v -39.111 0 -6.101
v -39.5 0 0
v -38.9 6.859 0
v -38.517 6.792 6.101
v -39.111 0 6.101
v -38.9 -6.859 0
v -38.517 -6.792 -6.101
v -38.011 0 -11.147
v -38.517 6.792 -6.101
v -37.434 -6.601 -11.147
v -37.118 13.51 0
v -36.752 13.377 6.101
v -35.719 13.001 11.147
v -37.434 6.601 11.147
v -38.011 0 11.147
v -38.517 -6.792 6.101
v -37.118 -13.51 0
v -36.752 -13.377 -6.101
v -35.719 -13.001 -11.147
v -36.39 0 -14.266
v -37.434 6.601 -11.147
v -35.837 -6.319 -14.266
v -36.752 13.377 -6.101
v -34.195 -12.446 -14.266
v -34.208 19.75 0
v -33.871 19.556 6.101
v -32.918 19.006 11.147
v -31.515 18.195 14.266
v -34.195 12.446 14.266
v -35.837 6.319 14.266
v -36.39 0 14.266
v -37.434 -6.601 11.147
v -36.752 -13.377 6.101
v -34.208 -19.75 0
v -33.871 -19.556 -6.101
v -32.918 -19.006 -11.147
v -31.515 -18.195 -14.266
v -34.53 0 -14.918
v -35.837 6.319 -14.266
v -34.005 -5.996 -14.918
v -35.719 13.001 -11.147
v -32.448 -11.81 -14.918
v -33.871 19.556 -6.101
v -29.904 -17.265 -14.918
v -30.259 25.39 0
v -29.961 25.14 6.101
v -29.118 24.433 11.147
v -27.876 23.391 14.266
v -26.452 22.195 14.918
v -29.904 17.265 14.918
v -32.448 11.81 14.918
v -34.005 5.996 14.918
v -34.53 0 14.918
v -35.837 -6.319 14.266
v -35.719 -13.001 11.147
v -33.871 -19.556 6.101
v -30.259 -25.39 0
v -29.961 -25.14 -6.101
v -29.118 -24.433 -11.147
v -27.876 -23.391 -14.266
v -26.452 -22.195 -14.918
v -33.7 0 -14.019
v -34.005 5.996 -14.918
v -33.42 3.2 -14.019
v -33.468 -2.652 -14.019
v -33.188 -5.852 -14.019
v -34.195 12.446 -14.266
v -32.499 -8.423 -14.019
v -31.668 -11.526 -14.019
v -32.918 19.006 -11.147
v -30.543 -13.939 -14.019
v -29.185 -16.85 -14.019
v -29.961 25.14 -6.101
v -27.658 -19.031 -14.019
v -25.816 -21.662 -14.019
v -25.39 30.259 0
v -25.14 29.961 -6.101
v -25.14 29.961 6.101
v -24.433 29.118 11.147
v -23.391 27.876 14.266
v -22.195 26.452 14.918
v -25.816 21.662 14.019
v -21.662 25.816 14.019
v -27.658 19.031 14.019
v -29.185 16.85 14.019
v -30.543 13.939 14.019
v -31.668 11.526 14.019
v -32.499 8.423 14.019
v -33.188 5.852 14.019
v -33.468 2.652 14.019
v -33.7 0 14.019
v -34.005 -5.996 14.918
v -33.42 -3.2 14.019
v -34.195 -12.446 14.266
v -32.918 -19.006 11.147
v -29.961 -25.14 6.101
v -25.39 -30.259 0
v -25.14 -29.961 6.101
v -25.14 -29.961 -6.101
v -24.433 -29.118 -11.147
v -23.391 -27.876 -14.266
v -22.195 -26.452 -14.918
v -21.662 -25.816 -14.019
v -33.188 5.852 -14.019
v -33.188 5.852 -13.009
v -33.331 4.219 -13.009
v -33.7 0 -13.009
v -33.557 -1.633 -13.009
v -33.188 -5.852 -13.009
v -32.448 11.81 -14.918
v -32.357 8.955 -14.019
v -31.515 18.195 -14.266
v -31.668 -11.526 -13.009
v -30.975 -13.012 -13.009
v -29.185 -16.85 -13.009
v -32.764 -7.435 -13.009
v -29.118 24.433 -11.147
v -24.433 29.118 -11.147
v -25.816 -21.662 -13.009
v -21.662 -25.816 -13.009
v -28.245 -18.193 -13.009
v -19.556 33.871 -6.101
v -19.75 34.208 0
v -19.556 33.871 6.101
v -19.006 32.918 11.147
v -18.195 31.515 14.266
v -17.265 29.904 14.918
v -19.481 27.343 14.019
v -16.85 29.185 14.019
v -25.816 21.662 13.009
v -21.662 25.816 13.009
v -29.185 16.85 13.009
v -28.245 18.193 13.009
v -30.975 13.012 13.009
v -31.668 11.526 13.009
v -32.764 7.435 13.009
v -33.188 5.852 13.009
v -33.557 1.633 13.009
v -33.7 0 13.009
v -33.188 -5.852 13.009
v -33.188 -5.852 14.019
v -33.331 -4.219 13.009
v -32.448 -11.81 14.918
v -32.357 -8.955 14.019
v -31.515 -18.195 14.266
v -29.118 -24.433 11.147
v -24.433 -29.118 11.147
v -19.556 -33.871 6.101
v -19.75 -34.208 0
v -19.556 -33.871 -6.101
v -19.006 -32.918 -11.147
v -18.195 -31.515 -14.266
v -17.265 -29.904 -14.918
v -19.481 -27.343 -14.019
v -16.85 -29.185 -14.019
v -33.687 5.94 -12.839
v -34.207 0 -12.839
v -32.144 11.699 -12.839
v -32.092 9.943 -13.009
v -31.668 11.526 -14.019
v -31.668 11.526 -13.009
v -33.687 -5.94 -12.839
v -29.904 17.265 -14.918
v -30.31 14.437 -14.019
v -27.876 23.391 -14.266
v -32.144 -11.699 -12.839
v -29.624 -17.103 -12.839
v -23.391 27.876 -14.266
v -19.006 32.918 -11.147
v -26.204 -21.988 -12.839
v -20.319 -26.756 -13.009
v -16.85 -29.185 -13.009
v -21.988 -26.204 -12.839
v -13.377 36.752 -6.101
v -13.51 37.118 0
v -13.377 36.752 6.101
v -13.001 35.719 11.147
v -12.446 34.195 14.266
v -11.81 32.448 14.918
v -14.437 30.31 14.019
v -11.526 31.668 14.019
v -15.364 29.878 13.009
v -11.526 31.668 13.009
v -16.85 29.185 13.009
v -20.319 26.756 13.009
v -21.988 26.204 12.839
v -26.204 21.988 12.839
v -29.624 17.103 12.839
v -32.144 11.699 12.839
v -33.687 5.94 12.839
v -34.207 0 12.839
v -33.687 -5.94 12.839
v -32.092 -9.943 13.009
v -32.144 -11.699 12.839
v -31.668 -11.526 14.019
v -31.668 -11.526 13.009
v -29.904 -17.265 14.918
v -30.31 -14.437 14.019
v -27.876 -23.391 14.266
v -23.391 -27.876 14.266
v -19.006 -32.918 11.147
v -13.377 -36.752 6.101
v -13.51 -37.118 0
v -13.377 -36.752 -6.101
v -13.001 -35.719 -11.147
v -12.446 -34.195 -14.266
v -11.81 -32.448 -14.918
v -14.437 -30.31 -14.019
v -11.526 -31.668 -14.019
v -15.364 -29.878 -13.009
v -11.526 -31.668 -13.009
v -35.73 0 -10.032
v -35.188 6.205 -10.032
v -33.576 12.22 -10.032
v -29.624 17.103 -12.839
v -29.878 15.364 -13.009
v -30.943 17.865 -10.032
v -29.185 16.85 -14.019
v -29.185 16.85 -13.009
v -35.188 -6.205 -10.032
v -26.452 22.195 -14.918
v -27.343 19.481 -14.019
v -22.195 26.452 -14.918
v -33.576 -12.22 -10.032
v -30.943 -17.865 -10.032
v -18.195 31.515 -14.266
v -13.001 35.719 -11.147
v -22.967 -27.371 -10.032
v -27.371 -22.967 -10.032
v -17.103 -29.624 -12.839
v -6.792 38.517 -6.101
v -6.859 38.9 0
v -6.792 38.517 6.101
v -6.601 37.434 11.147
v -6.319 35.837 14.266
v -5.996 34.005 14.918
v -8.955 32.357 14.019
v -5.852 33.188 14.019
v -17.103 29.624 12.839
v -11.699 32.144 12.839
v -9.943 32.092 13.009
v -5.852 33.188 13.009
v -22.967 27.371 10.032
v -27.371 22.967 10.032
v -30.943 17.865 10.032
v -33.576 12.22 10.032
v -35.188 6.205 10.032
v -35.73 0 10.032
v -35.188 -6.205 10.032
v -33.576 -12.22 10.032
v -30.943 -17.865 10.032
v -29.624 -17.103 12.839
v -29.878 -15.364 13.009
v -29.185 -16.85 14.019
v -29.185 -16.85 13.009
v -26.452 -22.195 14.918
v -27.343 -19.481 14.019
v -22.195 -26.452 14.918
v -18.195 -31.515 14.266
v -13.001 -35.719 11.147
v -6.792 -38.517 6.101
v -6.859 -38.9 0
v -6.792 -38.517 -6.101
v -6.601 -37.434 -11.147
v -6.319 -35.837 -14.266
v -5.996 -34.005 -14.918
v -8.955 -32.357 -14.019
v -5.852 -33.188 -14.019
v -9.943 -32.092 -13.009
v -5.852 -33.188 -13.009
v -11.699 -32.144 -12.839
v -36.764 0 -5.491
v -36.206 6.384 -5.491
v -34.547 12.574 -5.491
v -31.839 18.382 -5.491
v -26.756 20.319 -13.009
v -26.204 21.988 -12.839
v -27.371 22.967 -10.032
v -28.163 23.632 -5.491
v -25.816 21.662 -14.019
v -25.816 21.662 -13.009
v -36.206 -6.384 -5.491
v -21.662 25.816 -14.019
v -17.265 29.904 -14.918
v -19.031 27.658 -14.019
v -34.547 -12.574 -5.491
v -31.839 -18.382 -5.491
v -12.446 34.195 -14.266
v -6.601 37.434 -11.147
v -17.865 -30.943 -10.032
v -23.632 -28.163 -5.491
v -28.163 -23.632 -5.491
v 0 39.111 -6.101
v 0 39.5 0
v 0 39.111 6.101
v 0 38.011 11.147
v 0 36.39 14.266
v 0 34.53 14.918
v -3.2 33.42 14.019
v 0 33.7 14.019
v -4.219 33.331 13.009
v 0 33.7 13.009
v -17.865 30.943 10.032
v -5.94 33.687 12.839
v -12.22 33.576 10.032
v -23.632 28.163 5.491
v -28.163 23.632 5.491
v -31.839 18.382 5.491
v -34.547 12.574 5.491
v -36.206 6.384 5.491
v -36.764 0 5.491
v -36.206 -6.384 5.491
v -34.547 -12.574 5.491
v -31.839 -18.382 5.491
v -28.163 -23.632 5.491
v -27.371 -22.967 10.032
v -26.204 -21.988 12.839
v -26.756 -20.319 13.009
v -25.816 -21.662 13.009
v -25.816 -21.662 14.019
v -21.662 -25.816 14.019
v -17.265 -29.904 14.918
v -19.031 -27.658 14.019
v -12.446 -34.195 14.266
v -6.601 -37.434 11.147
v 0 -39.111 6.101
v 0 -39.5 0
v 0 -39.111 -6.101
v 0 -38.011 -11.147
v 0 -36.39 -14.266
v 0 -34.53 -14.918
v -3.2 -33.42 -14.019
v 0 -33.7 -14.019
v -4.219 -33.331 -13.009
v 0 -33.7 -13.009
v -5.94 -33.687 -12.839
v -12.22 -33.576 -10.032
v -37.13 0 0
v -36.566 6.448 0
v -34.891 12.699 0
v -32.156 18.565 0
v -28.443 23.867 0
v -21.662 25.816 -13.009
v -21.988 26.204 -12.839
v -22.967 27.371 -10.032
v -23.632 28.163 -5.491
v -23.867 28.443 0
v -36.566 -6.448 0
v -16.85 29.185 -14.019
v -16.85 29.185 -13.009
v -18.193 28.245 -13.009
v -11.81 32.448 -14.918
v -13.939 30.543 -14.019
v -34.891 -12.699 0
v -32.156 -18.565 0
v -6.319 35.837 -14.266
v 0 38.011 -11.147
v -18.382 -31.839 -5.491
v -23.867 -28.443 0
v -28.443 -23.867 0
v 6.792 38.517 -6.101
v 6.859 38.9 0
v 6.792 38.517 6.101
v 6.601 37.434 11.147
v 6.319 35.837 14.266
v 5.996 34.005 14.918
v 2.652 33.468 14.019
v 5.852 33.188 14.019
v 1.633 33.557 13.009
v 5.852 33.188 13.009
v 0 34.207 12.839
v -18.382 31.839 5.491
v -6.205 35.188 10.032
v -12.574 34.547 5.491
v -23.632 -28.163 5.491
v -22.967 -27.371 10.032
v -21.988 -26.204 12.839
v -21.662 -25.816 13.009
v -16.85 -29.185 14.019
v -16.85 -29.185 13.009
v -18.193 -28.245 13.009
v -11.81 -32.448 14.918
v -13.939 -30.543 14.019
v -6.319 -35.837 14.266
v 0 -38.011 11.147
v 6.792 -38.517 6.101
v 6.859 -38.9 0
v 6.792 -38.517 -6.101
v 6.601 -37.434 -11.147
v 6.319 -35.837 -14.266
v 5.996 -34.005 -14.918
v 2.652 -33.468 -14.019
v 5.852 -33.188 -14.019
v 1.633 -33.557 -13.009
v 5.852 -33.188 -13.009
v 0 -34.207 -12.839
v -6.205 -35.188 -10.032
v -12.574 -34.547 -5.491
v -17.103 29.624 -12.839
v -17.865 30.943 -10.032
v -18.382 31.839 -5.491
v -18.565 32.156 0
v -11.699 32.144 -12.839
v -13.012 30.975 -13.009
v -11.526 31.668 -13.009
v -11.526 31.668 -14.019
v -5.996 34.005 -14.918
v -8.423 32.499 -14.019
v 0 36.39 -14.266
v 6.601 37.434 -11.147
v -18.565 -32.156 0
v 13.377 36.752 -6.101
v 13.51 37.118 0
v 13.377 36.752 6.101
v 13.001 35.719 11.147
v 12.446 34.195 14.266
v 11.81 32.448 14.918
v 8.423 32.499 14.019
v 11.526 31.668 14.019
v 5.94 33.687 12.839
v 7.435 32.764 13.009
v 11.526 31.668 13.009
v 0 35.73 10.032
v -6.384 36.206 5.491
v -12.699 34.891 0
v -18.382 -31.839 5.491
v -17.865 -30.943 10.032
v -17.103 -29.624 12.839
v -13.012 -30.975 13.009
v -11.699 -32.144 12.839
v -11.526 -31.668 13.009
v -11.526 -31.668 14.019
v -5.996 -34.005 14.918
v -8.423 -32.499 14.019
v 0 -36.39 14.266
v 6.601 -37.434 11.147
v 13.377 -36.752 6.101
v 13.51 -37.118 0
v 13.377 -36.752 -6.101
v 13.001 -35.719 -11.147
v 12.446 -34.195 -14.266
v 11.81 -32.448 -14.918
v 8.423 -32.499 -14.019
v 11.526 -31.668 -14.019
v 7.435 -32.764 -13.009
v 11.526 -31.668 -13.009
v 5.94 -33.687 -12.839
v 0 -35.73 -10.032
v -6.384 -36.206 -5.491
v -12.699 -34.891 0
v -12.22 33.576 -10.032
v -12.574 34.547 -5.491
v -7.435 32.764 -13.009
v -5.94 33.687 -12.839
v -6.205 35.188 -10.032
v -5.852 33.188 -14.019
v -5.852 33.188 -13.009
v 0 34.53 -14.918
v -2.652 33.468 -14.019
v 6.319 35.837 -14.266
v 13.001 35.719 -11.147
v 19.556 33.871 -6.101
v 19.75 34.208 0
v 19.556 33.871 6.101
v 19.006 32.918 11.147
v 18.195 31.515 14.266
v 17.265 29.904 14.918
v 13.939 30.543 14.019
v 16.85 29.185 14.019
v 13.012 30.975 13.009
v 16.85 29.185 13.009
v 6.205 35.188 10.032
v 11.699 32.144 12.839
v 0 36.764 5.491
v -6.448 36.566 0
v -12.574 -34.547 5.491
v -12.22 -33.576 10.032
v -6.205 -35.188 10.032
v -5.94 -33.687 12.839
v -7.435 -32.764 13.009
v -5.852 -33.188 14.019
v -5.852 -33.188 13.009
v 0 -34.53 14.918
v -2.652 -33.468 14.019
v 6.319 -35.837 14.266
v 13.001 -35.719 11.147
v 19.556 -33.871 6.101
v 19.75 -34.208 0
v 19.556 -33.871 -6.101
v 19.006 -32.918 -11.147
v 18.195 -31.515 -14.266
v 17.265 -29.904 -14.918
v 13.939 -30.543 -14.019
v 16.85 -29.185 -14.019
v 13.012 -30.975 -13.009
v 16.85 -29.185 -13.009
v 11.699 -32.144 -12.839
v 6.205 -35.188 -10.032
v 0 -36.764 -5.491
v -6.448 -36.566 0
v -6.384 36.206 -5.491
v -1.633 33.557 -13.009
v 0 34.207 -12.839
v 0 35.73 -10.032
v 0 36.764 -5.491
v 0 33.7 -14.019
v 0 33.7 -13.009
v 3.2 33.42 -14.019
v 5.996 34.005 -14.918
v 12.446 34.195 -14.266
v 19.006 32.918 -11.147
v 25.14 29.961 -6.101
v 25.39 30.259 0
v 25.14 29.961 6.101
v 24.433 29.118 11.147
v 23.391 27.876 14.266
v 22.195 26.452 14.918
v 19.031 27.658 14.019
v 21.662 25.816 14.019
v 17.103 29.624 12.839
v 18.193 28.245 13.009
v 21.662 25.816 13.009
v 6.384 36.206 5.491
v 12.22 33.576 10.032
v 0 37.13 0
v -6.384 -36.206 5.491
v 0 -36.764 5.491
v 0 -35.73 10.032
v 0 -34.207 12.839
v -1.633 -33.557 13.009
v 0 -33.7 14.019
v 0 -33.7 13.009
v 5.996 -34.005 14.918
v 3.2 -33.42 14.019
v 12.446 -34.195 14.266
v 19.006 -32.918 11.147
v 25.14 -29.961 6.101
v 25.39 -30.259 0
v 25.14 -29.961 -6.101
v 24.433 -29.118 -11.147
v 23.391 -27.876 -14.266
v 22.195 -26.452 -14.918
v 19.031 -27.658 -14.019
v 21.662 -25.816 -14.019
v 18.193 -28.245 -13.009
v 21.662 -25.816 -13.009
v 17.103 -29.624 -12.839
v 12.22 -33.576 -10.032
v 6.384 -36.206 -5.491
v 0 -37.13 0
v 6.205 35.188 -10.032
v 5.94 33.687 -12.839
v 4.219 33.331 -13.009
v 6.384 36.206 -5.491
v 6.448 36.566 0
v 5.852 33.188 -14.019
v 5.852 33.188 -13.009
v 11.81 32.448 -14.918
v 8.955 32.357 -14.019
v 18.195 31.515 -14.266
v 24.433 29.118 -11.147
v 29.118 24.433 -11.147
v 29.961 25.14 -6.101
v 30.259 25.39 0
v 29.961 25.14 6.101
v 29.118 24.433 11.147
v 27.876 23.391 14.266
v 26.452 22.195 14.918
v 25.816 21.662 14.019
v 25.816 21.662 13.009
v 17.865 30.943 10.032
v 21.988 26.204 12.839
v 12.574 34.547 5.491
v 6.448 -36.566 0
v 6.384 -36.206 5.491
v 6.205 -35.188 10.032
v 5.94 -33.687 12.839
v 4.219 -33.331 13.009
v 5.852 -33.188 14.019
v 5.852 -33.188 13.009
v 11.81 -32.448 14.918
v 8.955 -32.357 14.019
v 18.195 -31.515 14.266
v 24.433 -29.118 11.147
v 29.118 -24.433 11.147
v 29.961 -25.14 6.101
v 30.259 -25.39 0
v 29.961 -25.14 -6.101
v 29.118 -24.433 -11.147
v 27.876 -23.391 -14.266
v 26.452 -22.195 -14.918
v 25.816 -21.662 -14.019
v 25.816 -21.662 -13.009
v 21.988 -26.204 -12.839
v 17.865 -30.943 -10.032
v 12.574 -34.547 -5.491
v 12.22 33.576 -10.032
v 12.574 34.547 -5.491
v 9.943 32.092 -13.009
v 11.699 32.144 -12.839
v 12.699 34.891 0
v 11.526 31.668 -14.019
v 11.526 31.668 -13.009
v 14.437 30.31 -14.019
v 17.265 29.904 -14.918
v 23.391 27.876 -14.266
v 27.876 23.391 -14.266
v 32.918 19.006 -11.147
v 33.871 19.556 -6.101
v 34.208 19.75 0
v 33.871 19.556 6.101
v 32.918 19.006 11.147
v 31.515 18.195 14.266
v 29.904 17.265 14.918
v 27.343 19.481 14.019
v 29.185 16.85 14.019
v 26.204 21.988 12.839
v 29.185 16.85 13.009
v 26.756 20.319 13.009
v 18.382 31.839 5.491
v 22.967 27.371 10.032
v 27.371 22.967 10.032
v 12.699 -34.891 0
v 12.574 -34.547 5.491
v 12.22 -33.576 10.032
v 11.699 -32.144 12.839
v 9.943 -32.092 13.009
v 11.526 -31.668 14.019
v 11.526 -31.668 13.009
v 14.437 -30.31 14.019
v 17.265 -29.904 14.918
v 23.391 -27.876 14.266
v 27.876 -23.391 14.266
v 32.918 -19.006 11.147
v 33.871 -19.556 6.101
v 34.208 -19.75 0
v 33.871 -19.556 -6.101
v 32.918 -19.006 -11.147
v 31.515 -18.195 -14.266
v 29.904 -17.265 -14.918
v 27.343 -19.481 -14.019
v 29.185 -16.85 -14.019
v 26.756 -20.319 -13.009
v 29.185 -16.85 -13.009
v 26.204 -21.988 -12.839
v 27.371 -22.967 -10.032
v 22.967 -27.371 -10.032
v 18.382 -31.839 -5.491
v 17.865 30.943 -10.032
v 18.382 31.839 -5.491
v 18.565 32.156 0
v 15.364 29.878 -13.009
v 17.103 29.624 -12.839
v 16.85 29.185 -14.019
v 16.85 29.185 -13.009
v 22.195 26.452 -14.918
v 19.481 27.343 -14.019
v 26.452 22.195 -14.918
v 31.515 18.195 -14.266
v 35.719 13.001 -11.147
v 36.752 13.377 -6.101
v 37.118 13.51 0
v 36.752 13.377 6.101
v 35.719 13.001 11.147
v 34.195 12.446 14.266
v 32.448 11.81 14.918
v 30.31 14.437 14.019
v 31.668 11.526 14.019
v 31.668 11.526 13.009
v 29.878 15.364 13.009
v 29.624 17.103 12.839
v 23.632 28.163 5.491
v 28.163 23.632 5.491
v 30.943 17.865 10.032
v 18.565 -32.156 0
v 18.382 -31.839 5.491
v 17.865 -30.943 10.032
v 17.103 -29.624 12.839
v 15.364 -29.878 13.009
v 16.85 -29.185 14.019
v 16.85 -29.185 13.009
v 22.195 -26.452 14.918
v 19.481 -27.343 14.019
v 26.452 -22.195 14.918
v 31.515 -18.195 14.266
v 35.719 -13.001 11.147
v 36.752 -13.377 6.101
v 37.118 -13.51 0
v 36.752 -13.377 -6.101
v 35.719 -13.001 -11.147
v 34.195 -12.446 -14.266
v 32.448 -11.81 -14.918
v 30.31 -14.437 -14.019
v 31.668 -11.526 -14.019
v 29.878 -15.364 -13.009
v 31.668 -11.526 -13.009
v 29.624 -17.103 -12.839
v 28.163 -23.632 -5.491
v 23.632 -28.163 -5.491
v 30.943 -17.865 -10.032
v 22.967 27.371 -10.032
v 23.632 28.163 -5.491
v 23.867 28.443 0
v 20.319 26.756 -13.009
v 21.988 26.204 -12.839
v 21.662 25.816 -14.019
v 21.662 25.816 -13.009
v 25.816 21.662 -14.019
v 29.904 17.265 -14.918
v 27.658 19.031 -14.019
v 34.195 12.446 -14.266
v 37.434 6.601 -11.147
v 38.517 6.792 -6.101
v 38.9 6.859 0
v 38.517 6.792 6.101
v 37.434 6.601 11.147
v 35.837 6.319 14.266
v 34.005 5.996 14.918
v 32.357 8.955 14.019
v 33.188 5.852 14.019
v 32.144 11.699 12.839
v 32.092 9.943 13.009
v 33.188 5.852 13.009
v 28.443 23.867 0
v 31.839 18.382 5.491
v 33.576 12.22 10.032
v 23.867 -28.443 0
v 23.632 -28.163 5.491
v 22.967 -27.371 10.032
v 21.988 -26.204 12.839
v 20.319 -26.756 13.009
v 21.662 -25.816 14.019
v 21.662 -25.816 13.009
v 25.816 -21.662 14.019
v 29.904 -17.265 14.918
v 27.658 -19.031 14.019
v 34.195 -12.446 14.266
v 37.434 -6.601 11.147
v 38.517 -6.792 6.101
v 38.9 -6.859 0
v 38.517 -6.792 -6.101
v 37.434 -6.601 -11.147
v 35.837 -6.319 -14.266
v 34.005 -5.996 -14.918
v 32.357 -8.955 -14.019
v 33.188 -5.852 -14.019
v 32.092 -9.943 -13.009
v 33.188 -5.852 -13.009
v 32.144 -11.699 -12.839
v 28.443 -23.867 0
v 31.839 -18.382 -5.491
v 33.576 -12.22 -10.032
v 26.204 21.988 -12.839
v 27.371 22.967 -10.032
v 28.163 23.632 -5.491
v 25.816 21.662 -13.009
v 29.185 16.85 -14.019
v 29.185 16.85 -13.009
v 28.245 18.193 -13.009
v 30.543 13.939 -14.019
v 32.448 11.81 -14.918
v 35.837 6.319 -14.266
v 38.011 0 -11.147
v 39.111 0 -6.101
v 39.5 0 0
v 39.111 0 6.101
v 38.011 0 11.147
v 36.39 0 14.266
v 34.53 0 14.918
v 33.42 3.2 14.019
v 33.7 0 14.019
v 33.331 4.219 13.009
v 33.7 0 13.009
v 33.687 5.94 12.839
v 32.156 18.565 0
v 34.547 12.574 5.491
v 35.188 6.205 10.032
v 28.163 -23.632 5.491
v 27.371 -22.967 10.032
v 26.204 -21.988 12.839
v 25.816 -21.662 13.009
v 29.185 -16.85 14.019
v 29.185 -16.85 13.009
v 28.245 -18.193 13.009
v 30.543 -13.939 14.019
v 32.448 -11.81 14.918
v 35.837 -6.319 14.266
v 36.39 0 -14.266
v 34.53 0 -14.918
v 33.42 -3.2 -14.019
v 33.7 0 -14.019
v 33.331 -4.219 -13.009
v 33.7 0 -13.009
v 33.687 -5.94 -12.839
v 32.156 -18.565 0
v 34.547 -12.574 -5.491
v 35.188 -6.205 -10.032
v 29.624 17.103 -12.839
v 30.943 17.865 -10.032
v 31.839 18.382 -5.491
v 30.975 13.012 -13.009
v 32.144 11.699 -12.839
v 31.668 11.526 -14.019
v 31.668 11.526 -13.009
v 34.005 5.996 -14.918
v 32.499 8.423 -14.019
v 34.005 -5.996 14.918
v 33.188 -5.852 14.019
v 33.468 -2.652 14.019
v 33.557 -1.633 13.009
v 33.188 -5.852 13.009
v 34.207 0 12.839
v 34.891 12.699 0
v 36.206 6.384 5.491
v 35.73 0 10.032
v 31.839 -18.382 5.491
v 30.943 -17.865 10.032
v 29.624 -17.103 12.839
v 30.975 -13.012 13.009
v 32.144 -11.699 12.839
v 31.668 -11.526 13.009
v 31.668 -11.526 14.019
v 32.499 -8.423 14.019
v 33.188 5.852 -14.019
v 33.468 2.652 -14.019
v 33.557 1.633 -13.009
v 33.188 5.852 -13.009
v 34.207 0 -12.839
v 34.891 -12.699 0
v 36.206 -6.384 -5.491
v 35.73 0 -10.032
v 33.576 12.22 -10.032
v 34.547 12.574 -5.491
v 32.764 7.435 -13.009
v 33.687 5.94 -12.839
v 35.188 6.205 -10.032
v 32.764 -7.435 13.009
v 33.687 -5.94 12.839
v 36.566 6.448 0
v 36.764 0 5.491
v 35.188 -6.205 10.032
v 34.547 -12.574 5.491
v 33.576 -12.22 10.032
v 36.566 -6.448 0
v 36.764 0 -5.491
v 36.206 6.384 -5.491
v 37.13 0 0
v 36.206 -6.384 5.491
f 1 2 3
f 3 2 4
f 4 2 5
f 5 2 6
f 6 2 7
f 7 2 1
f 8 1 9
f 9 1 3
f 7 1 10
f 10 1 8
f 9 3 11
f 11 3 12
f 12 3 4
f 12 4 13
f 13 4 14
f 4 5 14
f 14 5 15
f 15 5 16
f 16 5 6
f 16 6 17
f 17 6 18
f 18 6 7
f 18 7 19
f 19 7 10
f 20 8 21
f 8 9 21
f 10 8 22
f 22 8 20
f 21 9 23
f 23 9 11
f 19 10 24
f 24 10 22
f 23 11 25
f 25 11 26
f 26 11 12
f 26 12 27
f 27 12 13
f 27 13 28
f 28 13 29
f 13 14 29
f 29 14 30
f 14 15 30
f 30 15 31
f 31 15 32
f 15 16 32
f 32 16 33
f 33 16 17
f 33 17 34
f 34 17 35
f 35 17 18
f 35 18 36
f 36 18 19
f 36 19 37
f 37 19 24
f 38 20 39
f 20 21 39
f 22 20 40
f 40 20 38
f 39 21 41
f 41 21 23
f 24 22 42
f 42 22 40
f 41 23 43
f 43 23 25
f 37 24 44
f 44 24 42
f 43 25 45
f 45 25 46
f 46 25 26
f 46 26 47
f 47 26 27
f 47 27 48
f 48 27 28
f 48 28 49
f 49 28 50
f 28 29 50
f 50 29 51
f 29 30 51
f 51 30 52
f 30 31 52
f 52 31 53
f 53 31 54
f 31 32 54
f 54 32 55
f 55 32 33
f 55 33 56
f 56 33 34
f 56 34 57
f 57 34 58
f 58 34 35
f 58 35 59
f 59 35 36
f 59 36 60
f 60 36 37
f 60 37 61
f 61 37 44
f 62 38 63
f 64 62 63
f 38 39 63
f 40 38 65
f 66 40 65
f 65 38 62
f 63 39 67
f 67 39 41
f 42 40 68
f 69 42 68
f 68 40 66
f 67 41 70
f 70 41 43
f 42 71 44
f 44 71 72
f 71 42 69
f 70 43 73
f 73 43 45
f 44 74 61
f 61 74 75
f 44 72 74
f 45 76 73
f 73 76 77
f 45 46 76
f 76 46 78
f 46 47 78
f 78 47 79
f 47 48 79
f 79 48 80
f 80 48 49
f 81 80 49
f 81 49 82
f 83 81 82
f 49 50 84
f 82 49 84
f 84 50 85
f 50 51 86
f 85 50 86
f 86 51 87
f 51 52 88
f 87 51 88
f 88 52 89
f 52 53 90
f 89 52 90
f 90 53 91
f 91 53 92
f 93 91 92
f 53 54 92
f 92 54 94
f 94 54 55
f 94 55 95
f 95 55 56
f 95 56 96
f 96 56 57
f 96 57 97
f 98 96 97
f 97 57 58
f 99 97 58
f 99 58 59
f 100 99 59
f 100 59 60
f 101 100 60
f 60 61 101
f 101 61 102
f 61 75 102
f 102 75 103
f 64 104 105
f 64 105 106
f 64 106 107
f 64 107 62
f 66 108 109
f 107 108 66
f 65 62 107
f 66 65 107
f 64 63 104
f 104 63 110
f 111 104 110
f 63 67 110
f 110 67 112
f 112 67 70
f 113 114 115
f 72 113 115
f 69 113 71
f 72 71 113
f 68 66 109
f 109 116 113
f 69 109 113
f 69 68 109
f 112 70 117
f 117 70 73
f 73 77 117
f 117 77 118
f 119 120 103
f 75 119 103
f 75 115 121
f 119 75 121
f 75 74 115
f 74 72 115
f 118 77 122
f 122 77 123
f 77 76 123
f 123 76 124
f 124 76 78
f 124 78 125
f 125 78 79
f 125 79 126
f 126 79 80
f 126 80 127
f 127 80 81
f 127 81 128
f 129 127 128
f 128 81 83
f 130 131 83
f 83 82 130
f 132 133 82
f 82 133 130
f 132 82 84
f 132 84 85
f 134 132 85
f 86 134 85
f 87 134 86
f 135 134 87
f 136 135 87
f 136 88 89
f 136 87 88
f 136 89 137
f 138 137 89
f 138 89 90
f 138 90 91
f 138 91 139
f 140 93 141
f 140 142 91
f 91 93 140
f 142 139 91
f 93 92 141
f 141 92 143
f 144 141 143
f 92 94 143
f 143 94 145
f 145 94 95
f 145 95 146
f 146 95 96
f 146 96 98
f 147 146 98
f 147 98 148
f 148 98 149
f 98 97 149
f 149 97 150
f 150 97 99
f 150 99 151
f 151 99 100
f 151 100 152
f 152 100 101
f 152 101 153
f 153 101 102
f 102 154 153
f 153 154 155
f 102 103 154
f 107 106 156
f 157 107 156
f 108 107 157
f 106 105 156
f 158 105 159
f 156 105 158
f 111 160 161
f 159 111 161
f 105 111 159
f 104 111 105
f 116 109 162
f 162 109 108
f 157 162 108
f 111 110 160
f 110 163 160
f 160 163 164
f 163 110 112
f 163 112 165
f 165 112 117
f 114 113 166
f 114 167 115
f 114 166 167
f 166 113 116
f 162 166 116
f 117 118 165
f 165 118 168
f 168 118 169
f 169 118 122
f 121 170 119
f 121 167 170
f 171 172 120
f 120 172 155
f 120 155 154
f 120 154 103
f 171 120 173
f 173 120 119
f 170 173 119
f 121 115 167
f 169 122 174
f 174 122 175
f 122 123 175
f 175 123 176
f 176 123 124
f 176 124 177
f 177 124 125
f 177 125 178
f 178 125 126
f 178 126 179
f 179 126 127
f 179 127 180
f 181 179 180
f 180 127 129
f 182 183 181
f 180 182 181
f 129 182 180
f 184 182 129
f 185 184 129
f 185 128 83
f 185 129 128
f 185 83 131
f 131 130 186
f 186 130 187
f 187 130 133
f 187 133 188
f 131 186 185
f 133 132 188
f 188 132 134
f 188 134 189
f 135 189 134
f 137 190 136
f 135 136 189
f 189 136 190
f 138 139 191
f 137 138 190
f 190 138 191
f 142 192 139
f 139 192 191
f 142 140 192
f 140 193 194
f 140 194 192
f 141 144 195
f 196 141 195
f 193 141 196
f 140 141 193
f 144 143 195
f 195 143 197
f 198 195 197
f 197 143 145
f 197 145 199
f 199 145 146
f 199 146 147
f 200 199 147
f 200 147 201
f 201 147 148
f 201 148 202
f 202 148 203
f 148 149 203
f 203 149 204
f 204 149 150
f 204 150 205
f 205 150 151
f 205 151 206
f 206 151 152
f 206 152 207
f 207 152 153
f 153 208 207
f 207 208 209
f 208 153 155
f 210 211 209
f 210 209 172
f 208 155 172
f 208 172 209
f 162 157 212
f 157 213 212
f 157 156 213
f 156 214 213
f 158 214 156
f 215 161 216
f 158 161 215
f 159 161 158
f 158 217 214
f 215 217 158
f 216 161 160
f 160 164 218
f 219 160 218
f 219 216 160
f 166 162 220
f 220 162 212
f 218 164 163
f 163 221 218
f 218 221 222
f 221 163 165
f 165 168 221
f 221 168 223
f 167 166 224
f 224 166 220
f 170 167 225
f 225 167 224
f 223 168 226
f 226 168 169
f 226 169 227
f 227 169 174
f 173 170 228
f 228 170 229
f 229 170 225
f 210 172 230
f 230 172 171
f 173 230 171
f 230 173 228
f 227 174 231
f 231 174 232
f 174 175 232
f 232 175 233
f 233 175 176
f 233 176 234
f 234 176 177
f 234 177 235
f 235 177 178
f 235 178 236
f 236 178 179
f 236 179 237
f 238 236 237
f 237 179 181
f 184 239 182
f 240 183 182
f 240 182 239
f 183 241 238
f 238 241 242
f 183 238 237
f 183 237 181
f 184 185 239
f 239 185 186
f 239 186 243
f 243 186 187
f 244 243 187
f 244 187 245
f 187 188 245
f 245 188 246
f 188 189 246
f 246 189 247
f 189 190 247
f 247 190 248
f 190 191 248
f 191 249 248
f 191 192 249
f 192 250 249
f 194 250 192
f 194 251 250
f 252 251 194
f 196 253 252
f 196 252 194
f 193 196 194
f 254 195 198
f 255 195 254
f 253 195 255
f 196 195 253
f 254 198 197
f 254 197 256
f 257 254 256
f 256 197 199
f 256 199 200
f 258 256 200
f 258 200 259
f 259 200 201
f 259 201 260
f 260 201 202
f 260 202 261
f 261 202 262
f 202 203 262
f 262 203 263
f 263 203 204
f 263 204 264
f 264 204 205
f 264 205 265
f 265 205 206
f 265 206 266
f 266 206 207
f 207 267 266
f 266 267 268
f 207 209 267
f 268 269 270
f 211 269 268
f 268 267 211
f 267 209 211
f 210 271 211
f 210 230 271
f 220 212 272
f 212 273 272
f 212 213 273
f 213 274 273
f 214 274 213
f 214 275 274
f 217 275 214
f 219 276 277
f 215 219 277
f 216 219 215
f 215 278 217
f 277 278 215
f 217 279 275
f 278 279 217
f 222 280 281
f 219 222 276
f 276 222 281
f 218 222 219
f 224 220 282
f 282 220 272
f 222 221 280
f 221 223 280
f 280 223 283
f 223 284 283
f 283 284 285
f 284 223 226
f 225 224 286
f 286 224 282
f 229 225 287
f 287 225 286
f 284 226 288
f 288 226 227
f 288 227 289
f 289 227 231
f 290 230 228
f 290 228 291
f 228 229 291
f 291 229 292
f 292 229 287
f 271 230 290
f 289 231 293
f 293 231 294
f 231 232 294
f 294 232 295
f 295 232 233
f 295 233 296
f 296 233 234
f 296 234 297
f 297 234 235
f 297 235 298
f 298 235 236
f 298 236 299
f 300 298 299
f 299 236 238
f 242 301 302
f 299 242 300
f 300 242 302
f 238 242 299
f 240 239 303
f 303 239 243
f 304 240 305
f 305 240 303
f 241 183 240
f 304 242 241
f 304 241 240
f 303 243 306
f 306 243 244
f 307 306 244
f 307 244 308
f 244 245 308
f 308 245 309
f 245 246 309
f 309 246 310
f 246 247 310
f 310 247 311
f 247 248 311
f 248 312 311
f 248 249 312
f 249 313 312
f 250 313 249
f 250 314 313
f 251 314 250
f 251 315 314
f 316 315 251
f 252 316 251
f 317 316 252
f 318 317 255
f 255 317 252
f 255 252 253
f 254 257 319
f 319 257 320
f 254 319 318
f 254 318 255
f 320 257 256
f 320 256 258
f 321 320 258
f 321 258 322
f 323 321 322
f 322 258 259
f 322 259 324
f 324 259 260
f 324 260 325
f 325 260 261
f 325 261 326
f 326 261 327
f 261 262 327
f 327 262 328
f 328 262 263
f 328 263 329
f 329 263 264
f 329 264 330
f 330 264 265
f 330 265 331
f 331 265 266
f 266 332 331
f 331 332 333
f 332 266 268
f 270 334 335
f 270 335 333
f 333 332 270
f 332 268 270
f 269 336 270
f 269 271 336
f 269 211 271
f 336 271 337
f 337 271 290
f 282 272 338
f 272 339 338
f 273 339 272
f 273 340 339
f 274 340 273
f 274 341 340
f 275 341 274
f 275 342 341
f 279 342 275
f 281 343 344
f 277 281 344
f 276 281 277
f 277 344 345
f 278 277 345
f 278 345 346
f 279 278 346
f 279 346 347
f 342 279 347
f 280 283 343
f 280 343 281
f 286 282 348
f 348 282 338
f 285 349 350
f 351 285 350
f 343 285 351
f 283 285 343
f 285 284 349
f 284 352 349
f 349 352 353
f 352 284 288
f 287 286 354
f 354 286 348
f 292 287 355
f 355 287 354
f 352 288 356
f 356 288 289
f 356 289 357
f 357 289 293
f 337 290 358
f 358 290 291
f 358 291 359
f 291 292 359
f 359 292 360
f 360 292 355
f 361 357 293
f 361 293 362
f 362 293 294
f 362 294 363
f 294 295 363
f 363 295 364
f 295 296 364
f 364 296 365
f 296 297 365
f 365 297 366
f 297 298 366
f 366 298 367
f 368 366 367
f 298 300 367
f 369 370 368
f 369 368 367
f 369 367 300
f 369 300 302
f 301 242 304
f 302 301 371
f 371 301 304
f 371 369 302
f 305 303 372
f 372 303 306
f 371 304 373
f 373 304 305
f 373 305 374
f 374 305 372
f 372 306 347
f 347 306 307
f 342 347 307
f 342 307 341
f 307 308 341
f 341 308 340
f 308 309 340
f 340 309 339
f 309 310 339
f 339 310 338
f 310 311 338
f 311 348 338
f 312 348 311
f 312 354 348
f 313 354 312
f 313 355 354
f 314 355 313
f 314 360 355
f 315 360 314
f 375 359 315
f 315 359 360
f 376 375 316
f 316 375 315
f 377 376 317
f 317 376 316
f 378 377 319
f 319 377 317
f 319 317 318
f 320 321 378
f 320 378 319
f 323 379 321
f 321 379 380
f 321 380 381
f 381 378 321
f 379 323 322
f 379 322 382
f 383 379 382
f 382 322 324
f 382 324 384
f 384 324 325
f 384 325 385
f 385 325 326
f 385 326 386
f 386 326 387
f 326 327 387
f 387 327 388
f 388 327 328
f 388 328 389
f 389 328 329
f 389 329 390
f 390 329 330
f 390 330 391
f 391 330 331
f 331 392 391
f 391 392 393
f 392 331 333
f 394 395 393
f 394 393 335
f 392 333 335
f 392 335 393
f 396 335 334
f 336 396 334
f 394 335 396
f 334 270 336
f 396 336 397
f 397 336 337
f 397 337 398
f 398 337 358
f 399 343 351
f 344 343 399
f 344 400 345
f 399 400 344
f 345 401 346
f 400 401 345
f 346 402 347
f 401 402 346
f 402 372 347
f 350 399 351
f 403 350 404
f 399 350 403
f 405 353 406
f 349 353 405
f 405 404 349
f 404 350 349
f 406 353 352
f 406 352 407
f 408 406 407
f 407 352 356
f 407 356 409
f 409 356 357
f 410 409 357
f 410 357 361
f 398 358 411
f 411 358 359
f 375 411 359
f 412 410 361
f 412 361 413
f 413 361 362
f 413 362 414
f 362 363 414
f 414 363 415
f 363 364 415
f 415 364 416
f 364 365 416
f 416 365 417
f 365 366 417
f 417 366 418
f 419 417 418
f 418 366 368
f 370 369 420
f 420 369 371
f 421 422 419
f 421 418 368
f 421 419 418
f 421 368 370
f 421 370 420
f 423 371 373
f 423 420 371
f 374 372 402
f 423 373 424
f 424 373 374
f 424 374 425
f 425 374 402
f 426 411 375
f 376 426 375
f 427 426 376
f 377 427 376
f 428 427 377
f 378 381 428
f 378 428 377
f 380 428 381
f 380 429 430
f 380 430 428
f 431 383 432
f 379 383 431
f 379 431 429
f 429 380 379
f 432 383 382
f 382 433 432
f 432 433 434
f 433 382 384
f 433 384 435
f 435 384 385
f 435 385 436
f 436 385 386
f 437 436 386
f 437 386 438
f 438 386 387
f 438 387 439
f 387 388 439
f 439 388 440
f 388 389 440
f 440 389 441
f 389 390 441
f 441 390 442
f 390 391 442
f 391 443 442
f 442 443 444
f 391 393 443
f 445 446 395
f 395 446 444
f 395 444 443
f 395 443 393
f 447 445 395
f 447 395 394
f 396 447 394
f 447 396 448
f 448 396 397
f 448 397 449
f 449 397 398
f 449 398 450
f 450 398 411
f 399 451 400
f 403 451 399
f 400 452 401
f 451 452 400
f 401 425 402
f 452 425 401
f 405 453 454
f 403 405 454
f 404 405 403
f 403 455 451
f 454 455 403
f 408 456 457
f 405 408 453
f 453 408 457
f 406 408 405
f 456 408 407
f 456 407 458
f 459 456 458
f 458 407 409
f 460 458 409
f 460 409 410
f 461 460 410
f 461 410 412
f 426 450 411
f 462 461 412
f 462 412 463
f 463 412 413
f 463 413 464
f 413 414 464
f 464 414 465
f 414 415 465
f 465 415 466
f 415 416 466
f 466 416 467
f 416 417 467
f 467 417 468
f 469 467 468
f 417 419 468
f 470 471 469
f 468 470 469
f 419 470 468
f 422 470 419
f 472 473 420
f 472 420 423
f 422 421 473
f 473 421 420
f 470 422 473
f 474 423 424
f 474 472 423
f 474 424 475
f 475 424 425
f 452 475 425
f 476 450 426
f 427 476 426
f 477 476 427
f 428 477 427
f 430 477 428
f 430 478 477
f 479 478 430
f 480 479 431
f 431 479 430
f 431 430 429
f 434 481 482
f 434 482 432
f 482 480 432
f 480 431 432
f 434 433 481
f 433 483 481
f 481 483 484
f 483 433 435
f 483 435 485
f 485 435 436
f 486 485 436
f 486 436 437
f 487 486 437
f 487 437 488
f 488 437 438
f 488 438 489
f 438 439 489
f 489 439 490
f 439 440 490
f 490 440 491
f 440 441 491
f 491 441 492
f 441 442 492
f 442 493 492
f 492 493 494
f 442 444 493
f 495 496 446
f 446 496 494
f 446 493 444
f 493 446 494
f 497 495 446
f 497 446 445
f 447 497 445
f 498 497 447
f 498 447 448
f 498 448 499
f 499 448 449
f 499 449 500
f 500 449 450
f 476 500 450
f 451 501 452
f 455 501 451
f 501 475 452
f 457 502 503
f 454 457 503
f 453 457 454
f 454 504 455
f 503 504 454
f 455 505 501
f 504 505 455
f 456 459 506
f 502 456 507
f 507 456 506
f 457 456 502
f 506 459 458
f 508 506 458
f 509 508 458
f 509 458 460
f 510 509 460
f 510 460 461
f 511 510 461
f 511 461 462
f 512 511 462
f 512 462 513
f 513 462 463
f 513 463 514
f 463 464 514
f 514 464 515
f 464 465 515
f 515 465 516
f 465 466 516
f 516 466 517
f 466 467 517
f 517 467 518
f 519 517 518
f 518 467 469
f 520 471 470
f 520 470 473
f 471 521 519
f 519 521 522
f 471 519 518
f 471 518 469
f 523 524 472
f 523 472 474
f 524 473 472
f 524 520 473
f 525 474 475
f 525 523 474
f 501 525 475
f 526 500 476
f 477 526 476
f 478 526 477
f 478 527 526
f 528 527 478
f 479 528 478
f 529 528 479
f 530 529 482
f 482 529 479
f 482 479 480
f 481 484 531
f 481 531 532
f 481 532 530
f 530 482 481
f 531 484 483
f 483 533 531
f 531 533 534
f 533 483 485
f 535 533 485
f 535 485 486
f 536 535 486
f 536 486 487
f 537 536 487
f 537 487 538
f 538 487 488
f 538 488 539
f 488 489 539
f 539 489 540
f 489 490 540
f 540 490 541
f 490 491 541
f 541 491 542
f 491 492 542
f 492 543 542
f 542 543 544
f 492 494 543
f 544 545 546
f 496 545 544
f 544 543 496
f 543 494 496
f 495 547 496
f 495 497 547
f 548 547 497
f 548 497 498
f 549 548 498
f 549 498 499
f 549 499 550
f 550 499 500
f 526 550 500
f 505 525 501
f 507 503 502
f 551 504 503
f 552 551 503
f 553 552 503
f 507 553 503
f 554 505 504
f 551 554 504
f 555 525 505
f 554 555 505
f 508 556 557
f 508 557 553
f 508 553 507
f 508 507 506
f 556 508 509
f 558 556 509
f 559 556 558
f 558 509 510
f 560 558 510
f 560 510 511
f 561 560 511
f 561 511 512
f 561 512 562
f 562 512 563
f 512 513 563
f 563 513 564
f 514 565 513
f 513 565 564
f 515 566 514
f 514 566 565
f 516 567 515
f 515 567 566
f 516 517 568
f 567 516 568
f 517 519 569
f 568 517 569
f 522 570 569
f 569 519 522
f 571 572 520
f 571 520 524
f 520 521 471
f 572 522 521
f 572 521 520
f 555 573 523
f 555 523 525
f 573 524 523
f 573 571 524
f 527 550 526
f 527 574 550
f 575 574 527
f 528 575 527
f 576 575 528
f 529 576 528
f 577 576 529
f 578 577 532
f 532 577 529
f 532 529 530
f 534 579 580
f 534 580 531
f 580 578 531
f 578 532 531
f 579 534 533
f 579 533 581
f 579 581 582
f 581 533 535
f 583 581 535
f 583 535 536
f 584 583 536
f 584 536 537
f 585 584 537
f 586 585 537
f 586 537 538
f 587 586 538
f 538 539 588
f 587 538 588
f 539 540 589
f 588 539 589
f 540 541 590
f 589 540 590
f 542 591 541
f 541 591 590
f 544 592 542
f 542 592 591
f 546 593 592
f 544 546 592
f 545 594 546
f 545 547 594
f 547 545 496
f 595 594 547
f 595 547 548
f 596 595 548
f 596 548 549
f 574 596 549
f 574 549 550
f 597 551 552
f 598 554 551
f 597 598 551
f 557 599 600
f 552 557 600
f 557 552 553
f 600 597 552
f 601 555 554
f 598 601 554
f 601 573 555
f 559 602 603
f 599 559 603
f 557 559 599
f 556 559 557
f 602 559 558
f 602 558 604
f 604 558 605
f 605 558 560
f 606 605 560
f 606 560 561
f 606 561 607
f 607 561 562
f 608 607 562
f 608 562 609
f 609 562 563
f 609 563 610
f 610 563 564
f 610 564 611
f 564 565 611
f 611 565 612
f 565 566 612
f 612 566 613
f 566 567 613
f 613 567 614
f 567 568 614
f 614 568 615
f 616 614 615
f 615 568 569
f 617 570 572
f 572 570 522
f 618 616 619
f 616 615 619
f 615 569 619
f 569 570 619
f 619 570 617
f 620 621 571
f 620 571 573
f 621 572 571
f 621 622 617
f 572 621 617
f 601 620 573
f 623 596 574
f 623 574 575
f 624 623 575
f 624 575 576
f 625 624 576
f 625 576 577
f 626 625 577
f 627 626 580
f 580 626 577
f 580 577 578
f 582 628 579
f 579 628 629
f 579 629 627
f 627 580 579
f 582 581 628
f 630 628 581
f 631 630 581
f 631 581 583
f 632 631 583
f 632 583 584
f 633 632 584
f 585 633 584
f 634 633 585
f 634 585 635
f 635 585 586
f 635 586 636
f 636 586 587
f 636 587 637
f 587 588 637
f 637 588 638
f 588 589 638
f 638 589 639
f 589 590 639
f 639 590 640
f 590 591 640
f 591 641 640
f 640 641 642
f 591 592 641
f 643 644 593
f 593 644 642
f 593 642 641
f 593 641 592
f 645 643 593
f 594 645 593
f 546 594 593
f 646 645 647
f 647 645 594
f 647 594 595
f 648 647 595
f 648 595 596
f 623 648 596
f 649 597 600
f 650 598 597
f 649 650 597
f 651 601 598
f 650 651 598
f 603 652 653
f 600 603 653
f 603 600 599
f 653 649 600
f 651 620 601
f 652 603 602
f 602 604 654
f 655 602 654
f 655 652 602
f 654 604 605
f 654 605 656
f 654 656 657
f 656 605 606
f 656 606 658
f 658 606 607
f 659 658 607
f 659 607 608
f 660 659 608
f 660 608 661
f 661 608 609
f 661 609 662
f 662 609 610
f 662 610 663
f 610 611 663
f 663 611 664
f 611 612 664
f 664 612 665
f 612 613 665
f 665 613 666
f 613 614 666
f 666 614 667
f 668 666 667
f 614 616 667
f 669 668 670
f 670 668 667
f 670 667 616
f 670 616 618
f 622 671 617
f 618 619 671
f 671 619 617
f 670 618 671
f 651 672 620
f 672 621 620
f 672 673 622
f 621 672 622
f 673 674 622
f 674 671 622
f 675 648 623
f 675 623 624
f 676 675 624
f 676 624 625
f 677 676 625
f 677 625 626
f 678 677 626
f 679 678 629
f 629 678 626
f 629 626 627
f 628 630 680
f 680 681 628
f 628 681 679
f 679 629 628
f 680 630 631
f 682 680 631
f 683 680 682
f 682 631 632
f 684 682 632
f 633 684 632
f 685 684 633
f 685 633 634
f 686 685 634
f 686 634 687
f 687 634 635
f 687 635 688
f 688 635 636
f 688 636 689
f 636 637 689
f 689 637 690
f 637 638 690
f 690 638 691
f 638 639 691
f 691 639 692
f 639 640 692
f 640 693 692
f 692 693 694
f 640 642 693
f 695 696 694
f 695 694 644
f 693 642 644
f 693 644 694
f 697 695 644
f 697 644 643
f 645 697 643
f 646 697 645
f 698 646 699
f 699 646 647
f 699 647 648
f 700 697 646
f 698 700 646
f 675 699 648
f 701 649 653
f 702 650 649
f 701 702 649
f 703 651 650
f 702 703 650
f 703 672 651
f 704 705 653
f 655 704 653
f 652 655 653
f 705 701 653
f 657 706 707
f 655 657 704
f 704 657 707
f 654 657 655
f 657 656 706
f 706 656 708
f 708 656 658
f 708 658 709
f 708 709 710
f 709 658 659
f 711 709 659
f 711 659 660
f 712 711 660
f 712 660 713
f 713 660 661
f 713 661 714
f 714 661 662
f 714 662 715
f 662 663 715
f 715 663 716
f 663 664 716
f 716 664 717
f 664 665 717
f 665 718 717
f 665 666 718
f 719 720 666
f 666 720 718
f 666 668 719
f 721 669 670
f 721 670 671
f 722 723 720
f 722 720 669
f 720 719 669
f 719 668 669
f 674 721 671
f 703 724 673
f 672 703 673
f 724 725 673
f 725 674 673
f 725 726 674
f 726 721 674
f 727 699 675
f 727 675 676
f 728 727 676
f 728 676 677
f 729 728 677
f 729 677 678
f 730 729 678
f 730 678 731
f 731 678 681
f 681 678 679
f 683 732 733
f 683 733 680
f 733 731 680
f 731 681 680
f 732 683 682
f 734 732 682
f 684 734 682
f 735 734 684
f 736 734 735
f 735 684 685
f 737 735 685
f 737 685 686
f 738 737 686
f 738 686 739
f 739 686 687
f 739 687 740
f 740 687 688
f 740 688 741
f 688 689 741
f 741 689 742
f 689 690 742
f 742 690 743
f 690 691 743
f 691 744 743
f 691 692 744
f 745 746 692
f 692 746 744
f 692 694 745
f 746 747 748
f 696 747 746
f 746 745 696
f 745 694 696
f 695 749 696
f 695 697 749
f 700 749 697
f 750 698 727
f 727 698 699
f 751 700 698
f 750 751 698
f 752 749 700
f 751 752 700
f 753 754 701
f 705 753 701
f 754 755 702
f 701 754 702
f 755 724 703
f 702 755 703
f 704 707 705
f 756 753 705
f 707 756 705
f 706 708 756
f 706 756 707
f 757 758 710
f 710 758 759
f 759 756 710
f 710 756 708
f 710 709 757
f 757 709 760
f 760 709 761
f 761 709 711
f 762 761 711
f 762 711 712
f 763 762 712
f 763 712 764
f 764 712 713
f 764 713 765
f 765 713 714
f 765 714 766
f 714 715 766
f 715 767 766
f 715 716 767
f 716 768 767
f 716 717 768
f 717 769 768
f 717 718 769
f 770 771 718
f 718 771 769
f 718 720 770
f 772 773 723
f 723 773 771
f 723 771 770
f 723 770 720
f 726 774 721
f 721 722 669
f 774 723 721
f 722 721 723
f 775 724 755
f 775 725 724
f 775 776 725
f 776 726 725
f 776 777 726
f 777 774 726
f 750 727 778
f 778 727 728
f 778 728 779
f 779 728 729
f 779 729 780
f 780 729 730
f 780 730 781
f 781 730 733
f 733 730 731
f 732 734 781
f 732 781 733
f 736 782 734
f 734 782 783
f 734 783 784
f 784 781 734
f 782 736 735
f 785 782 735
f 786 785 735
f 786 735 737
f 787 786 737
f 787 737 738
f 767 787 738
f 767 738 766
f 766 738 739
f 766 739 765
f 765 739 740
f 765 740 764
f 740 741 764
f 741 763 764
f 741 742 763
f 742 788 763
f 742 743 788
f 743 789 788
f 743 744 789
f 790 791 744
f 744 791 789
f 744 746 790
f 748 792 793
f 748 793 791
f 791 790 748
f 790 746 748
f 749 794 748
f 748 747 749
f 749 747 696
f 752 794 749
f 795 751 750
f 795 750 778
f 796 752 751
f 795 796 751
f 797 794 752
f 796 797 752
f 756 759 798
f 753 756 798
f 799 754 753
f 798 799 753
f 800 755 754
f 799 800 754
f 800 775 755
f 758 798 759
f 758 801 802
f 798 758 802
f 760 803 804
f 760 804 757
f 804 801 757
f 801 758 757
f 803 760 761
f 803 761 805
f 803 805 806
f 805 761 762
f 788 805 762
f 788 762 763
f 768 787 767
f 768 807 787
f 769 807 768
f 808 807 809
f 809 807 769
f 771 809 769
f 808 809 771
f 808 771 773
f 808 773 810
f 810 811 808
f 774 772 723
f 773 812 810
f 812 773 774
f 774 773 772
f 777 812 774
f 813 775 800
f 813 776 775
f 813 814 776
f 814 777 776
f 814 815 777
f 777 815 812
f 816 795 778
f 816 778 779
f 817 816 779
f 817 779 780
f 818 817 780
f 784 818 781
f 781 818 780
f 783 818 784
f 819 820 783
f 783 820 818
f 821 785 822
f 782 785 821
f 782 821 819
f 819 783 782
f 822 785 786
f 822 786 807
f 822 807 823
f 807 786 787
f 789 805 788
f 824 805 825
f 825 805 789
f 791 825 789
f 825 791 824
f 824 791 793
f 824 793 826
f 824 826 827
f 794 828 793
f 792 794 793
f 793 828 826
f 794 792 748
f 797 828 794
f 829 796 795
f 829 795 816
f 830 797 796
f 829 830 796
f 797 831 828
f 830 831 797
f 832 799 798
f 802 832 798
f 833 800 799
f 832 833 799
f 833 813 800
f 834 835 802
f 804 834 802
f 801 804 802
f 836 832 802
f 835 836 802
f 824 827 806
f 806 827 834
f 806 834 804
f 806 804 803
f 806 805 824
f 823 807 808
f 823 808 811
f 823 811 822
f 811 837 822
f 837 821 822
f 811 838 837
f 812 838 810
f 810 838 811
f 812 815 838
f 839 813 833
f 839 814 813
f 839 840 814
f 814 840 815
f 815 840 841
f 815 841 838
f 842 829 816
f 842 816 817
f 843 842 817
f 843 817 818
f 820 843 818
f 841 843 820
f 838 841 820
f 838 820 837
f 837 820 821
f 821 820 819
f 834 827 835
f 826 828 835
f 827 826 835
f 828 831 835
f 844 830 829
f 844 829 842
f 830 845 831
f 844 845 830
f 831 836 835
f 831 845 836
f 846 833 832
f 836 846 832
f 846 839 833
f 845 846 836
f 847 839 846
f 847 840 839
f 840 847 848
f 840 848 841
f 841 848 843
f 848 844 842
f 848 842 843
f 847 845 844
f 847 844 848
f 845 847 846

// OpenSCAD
module braceletTube() {
	rotate_extrude(convexity = 10, $fn = 36)
	translate([35, 0, 0])
	scale([0.3,1,1]) circle(r = 15, $fn = 15);
}

module hollowBraceletTube() {
	difference() {
		braceletTube();
		scale([0.94,0.94,0.9])braceletTube();
	}
}
difference() {
	difference() {
		hollowBraceletTube();
		translate([0,0,-20])cylinder(40,33.7,33.7,$fn=36);
	}
	//translate([0,0,-30])cylinder(40,31.2,31.2);
	//translate([0,0,-30])cube([40,40,60]);
}
